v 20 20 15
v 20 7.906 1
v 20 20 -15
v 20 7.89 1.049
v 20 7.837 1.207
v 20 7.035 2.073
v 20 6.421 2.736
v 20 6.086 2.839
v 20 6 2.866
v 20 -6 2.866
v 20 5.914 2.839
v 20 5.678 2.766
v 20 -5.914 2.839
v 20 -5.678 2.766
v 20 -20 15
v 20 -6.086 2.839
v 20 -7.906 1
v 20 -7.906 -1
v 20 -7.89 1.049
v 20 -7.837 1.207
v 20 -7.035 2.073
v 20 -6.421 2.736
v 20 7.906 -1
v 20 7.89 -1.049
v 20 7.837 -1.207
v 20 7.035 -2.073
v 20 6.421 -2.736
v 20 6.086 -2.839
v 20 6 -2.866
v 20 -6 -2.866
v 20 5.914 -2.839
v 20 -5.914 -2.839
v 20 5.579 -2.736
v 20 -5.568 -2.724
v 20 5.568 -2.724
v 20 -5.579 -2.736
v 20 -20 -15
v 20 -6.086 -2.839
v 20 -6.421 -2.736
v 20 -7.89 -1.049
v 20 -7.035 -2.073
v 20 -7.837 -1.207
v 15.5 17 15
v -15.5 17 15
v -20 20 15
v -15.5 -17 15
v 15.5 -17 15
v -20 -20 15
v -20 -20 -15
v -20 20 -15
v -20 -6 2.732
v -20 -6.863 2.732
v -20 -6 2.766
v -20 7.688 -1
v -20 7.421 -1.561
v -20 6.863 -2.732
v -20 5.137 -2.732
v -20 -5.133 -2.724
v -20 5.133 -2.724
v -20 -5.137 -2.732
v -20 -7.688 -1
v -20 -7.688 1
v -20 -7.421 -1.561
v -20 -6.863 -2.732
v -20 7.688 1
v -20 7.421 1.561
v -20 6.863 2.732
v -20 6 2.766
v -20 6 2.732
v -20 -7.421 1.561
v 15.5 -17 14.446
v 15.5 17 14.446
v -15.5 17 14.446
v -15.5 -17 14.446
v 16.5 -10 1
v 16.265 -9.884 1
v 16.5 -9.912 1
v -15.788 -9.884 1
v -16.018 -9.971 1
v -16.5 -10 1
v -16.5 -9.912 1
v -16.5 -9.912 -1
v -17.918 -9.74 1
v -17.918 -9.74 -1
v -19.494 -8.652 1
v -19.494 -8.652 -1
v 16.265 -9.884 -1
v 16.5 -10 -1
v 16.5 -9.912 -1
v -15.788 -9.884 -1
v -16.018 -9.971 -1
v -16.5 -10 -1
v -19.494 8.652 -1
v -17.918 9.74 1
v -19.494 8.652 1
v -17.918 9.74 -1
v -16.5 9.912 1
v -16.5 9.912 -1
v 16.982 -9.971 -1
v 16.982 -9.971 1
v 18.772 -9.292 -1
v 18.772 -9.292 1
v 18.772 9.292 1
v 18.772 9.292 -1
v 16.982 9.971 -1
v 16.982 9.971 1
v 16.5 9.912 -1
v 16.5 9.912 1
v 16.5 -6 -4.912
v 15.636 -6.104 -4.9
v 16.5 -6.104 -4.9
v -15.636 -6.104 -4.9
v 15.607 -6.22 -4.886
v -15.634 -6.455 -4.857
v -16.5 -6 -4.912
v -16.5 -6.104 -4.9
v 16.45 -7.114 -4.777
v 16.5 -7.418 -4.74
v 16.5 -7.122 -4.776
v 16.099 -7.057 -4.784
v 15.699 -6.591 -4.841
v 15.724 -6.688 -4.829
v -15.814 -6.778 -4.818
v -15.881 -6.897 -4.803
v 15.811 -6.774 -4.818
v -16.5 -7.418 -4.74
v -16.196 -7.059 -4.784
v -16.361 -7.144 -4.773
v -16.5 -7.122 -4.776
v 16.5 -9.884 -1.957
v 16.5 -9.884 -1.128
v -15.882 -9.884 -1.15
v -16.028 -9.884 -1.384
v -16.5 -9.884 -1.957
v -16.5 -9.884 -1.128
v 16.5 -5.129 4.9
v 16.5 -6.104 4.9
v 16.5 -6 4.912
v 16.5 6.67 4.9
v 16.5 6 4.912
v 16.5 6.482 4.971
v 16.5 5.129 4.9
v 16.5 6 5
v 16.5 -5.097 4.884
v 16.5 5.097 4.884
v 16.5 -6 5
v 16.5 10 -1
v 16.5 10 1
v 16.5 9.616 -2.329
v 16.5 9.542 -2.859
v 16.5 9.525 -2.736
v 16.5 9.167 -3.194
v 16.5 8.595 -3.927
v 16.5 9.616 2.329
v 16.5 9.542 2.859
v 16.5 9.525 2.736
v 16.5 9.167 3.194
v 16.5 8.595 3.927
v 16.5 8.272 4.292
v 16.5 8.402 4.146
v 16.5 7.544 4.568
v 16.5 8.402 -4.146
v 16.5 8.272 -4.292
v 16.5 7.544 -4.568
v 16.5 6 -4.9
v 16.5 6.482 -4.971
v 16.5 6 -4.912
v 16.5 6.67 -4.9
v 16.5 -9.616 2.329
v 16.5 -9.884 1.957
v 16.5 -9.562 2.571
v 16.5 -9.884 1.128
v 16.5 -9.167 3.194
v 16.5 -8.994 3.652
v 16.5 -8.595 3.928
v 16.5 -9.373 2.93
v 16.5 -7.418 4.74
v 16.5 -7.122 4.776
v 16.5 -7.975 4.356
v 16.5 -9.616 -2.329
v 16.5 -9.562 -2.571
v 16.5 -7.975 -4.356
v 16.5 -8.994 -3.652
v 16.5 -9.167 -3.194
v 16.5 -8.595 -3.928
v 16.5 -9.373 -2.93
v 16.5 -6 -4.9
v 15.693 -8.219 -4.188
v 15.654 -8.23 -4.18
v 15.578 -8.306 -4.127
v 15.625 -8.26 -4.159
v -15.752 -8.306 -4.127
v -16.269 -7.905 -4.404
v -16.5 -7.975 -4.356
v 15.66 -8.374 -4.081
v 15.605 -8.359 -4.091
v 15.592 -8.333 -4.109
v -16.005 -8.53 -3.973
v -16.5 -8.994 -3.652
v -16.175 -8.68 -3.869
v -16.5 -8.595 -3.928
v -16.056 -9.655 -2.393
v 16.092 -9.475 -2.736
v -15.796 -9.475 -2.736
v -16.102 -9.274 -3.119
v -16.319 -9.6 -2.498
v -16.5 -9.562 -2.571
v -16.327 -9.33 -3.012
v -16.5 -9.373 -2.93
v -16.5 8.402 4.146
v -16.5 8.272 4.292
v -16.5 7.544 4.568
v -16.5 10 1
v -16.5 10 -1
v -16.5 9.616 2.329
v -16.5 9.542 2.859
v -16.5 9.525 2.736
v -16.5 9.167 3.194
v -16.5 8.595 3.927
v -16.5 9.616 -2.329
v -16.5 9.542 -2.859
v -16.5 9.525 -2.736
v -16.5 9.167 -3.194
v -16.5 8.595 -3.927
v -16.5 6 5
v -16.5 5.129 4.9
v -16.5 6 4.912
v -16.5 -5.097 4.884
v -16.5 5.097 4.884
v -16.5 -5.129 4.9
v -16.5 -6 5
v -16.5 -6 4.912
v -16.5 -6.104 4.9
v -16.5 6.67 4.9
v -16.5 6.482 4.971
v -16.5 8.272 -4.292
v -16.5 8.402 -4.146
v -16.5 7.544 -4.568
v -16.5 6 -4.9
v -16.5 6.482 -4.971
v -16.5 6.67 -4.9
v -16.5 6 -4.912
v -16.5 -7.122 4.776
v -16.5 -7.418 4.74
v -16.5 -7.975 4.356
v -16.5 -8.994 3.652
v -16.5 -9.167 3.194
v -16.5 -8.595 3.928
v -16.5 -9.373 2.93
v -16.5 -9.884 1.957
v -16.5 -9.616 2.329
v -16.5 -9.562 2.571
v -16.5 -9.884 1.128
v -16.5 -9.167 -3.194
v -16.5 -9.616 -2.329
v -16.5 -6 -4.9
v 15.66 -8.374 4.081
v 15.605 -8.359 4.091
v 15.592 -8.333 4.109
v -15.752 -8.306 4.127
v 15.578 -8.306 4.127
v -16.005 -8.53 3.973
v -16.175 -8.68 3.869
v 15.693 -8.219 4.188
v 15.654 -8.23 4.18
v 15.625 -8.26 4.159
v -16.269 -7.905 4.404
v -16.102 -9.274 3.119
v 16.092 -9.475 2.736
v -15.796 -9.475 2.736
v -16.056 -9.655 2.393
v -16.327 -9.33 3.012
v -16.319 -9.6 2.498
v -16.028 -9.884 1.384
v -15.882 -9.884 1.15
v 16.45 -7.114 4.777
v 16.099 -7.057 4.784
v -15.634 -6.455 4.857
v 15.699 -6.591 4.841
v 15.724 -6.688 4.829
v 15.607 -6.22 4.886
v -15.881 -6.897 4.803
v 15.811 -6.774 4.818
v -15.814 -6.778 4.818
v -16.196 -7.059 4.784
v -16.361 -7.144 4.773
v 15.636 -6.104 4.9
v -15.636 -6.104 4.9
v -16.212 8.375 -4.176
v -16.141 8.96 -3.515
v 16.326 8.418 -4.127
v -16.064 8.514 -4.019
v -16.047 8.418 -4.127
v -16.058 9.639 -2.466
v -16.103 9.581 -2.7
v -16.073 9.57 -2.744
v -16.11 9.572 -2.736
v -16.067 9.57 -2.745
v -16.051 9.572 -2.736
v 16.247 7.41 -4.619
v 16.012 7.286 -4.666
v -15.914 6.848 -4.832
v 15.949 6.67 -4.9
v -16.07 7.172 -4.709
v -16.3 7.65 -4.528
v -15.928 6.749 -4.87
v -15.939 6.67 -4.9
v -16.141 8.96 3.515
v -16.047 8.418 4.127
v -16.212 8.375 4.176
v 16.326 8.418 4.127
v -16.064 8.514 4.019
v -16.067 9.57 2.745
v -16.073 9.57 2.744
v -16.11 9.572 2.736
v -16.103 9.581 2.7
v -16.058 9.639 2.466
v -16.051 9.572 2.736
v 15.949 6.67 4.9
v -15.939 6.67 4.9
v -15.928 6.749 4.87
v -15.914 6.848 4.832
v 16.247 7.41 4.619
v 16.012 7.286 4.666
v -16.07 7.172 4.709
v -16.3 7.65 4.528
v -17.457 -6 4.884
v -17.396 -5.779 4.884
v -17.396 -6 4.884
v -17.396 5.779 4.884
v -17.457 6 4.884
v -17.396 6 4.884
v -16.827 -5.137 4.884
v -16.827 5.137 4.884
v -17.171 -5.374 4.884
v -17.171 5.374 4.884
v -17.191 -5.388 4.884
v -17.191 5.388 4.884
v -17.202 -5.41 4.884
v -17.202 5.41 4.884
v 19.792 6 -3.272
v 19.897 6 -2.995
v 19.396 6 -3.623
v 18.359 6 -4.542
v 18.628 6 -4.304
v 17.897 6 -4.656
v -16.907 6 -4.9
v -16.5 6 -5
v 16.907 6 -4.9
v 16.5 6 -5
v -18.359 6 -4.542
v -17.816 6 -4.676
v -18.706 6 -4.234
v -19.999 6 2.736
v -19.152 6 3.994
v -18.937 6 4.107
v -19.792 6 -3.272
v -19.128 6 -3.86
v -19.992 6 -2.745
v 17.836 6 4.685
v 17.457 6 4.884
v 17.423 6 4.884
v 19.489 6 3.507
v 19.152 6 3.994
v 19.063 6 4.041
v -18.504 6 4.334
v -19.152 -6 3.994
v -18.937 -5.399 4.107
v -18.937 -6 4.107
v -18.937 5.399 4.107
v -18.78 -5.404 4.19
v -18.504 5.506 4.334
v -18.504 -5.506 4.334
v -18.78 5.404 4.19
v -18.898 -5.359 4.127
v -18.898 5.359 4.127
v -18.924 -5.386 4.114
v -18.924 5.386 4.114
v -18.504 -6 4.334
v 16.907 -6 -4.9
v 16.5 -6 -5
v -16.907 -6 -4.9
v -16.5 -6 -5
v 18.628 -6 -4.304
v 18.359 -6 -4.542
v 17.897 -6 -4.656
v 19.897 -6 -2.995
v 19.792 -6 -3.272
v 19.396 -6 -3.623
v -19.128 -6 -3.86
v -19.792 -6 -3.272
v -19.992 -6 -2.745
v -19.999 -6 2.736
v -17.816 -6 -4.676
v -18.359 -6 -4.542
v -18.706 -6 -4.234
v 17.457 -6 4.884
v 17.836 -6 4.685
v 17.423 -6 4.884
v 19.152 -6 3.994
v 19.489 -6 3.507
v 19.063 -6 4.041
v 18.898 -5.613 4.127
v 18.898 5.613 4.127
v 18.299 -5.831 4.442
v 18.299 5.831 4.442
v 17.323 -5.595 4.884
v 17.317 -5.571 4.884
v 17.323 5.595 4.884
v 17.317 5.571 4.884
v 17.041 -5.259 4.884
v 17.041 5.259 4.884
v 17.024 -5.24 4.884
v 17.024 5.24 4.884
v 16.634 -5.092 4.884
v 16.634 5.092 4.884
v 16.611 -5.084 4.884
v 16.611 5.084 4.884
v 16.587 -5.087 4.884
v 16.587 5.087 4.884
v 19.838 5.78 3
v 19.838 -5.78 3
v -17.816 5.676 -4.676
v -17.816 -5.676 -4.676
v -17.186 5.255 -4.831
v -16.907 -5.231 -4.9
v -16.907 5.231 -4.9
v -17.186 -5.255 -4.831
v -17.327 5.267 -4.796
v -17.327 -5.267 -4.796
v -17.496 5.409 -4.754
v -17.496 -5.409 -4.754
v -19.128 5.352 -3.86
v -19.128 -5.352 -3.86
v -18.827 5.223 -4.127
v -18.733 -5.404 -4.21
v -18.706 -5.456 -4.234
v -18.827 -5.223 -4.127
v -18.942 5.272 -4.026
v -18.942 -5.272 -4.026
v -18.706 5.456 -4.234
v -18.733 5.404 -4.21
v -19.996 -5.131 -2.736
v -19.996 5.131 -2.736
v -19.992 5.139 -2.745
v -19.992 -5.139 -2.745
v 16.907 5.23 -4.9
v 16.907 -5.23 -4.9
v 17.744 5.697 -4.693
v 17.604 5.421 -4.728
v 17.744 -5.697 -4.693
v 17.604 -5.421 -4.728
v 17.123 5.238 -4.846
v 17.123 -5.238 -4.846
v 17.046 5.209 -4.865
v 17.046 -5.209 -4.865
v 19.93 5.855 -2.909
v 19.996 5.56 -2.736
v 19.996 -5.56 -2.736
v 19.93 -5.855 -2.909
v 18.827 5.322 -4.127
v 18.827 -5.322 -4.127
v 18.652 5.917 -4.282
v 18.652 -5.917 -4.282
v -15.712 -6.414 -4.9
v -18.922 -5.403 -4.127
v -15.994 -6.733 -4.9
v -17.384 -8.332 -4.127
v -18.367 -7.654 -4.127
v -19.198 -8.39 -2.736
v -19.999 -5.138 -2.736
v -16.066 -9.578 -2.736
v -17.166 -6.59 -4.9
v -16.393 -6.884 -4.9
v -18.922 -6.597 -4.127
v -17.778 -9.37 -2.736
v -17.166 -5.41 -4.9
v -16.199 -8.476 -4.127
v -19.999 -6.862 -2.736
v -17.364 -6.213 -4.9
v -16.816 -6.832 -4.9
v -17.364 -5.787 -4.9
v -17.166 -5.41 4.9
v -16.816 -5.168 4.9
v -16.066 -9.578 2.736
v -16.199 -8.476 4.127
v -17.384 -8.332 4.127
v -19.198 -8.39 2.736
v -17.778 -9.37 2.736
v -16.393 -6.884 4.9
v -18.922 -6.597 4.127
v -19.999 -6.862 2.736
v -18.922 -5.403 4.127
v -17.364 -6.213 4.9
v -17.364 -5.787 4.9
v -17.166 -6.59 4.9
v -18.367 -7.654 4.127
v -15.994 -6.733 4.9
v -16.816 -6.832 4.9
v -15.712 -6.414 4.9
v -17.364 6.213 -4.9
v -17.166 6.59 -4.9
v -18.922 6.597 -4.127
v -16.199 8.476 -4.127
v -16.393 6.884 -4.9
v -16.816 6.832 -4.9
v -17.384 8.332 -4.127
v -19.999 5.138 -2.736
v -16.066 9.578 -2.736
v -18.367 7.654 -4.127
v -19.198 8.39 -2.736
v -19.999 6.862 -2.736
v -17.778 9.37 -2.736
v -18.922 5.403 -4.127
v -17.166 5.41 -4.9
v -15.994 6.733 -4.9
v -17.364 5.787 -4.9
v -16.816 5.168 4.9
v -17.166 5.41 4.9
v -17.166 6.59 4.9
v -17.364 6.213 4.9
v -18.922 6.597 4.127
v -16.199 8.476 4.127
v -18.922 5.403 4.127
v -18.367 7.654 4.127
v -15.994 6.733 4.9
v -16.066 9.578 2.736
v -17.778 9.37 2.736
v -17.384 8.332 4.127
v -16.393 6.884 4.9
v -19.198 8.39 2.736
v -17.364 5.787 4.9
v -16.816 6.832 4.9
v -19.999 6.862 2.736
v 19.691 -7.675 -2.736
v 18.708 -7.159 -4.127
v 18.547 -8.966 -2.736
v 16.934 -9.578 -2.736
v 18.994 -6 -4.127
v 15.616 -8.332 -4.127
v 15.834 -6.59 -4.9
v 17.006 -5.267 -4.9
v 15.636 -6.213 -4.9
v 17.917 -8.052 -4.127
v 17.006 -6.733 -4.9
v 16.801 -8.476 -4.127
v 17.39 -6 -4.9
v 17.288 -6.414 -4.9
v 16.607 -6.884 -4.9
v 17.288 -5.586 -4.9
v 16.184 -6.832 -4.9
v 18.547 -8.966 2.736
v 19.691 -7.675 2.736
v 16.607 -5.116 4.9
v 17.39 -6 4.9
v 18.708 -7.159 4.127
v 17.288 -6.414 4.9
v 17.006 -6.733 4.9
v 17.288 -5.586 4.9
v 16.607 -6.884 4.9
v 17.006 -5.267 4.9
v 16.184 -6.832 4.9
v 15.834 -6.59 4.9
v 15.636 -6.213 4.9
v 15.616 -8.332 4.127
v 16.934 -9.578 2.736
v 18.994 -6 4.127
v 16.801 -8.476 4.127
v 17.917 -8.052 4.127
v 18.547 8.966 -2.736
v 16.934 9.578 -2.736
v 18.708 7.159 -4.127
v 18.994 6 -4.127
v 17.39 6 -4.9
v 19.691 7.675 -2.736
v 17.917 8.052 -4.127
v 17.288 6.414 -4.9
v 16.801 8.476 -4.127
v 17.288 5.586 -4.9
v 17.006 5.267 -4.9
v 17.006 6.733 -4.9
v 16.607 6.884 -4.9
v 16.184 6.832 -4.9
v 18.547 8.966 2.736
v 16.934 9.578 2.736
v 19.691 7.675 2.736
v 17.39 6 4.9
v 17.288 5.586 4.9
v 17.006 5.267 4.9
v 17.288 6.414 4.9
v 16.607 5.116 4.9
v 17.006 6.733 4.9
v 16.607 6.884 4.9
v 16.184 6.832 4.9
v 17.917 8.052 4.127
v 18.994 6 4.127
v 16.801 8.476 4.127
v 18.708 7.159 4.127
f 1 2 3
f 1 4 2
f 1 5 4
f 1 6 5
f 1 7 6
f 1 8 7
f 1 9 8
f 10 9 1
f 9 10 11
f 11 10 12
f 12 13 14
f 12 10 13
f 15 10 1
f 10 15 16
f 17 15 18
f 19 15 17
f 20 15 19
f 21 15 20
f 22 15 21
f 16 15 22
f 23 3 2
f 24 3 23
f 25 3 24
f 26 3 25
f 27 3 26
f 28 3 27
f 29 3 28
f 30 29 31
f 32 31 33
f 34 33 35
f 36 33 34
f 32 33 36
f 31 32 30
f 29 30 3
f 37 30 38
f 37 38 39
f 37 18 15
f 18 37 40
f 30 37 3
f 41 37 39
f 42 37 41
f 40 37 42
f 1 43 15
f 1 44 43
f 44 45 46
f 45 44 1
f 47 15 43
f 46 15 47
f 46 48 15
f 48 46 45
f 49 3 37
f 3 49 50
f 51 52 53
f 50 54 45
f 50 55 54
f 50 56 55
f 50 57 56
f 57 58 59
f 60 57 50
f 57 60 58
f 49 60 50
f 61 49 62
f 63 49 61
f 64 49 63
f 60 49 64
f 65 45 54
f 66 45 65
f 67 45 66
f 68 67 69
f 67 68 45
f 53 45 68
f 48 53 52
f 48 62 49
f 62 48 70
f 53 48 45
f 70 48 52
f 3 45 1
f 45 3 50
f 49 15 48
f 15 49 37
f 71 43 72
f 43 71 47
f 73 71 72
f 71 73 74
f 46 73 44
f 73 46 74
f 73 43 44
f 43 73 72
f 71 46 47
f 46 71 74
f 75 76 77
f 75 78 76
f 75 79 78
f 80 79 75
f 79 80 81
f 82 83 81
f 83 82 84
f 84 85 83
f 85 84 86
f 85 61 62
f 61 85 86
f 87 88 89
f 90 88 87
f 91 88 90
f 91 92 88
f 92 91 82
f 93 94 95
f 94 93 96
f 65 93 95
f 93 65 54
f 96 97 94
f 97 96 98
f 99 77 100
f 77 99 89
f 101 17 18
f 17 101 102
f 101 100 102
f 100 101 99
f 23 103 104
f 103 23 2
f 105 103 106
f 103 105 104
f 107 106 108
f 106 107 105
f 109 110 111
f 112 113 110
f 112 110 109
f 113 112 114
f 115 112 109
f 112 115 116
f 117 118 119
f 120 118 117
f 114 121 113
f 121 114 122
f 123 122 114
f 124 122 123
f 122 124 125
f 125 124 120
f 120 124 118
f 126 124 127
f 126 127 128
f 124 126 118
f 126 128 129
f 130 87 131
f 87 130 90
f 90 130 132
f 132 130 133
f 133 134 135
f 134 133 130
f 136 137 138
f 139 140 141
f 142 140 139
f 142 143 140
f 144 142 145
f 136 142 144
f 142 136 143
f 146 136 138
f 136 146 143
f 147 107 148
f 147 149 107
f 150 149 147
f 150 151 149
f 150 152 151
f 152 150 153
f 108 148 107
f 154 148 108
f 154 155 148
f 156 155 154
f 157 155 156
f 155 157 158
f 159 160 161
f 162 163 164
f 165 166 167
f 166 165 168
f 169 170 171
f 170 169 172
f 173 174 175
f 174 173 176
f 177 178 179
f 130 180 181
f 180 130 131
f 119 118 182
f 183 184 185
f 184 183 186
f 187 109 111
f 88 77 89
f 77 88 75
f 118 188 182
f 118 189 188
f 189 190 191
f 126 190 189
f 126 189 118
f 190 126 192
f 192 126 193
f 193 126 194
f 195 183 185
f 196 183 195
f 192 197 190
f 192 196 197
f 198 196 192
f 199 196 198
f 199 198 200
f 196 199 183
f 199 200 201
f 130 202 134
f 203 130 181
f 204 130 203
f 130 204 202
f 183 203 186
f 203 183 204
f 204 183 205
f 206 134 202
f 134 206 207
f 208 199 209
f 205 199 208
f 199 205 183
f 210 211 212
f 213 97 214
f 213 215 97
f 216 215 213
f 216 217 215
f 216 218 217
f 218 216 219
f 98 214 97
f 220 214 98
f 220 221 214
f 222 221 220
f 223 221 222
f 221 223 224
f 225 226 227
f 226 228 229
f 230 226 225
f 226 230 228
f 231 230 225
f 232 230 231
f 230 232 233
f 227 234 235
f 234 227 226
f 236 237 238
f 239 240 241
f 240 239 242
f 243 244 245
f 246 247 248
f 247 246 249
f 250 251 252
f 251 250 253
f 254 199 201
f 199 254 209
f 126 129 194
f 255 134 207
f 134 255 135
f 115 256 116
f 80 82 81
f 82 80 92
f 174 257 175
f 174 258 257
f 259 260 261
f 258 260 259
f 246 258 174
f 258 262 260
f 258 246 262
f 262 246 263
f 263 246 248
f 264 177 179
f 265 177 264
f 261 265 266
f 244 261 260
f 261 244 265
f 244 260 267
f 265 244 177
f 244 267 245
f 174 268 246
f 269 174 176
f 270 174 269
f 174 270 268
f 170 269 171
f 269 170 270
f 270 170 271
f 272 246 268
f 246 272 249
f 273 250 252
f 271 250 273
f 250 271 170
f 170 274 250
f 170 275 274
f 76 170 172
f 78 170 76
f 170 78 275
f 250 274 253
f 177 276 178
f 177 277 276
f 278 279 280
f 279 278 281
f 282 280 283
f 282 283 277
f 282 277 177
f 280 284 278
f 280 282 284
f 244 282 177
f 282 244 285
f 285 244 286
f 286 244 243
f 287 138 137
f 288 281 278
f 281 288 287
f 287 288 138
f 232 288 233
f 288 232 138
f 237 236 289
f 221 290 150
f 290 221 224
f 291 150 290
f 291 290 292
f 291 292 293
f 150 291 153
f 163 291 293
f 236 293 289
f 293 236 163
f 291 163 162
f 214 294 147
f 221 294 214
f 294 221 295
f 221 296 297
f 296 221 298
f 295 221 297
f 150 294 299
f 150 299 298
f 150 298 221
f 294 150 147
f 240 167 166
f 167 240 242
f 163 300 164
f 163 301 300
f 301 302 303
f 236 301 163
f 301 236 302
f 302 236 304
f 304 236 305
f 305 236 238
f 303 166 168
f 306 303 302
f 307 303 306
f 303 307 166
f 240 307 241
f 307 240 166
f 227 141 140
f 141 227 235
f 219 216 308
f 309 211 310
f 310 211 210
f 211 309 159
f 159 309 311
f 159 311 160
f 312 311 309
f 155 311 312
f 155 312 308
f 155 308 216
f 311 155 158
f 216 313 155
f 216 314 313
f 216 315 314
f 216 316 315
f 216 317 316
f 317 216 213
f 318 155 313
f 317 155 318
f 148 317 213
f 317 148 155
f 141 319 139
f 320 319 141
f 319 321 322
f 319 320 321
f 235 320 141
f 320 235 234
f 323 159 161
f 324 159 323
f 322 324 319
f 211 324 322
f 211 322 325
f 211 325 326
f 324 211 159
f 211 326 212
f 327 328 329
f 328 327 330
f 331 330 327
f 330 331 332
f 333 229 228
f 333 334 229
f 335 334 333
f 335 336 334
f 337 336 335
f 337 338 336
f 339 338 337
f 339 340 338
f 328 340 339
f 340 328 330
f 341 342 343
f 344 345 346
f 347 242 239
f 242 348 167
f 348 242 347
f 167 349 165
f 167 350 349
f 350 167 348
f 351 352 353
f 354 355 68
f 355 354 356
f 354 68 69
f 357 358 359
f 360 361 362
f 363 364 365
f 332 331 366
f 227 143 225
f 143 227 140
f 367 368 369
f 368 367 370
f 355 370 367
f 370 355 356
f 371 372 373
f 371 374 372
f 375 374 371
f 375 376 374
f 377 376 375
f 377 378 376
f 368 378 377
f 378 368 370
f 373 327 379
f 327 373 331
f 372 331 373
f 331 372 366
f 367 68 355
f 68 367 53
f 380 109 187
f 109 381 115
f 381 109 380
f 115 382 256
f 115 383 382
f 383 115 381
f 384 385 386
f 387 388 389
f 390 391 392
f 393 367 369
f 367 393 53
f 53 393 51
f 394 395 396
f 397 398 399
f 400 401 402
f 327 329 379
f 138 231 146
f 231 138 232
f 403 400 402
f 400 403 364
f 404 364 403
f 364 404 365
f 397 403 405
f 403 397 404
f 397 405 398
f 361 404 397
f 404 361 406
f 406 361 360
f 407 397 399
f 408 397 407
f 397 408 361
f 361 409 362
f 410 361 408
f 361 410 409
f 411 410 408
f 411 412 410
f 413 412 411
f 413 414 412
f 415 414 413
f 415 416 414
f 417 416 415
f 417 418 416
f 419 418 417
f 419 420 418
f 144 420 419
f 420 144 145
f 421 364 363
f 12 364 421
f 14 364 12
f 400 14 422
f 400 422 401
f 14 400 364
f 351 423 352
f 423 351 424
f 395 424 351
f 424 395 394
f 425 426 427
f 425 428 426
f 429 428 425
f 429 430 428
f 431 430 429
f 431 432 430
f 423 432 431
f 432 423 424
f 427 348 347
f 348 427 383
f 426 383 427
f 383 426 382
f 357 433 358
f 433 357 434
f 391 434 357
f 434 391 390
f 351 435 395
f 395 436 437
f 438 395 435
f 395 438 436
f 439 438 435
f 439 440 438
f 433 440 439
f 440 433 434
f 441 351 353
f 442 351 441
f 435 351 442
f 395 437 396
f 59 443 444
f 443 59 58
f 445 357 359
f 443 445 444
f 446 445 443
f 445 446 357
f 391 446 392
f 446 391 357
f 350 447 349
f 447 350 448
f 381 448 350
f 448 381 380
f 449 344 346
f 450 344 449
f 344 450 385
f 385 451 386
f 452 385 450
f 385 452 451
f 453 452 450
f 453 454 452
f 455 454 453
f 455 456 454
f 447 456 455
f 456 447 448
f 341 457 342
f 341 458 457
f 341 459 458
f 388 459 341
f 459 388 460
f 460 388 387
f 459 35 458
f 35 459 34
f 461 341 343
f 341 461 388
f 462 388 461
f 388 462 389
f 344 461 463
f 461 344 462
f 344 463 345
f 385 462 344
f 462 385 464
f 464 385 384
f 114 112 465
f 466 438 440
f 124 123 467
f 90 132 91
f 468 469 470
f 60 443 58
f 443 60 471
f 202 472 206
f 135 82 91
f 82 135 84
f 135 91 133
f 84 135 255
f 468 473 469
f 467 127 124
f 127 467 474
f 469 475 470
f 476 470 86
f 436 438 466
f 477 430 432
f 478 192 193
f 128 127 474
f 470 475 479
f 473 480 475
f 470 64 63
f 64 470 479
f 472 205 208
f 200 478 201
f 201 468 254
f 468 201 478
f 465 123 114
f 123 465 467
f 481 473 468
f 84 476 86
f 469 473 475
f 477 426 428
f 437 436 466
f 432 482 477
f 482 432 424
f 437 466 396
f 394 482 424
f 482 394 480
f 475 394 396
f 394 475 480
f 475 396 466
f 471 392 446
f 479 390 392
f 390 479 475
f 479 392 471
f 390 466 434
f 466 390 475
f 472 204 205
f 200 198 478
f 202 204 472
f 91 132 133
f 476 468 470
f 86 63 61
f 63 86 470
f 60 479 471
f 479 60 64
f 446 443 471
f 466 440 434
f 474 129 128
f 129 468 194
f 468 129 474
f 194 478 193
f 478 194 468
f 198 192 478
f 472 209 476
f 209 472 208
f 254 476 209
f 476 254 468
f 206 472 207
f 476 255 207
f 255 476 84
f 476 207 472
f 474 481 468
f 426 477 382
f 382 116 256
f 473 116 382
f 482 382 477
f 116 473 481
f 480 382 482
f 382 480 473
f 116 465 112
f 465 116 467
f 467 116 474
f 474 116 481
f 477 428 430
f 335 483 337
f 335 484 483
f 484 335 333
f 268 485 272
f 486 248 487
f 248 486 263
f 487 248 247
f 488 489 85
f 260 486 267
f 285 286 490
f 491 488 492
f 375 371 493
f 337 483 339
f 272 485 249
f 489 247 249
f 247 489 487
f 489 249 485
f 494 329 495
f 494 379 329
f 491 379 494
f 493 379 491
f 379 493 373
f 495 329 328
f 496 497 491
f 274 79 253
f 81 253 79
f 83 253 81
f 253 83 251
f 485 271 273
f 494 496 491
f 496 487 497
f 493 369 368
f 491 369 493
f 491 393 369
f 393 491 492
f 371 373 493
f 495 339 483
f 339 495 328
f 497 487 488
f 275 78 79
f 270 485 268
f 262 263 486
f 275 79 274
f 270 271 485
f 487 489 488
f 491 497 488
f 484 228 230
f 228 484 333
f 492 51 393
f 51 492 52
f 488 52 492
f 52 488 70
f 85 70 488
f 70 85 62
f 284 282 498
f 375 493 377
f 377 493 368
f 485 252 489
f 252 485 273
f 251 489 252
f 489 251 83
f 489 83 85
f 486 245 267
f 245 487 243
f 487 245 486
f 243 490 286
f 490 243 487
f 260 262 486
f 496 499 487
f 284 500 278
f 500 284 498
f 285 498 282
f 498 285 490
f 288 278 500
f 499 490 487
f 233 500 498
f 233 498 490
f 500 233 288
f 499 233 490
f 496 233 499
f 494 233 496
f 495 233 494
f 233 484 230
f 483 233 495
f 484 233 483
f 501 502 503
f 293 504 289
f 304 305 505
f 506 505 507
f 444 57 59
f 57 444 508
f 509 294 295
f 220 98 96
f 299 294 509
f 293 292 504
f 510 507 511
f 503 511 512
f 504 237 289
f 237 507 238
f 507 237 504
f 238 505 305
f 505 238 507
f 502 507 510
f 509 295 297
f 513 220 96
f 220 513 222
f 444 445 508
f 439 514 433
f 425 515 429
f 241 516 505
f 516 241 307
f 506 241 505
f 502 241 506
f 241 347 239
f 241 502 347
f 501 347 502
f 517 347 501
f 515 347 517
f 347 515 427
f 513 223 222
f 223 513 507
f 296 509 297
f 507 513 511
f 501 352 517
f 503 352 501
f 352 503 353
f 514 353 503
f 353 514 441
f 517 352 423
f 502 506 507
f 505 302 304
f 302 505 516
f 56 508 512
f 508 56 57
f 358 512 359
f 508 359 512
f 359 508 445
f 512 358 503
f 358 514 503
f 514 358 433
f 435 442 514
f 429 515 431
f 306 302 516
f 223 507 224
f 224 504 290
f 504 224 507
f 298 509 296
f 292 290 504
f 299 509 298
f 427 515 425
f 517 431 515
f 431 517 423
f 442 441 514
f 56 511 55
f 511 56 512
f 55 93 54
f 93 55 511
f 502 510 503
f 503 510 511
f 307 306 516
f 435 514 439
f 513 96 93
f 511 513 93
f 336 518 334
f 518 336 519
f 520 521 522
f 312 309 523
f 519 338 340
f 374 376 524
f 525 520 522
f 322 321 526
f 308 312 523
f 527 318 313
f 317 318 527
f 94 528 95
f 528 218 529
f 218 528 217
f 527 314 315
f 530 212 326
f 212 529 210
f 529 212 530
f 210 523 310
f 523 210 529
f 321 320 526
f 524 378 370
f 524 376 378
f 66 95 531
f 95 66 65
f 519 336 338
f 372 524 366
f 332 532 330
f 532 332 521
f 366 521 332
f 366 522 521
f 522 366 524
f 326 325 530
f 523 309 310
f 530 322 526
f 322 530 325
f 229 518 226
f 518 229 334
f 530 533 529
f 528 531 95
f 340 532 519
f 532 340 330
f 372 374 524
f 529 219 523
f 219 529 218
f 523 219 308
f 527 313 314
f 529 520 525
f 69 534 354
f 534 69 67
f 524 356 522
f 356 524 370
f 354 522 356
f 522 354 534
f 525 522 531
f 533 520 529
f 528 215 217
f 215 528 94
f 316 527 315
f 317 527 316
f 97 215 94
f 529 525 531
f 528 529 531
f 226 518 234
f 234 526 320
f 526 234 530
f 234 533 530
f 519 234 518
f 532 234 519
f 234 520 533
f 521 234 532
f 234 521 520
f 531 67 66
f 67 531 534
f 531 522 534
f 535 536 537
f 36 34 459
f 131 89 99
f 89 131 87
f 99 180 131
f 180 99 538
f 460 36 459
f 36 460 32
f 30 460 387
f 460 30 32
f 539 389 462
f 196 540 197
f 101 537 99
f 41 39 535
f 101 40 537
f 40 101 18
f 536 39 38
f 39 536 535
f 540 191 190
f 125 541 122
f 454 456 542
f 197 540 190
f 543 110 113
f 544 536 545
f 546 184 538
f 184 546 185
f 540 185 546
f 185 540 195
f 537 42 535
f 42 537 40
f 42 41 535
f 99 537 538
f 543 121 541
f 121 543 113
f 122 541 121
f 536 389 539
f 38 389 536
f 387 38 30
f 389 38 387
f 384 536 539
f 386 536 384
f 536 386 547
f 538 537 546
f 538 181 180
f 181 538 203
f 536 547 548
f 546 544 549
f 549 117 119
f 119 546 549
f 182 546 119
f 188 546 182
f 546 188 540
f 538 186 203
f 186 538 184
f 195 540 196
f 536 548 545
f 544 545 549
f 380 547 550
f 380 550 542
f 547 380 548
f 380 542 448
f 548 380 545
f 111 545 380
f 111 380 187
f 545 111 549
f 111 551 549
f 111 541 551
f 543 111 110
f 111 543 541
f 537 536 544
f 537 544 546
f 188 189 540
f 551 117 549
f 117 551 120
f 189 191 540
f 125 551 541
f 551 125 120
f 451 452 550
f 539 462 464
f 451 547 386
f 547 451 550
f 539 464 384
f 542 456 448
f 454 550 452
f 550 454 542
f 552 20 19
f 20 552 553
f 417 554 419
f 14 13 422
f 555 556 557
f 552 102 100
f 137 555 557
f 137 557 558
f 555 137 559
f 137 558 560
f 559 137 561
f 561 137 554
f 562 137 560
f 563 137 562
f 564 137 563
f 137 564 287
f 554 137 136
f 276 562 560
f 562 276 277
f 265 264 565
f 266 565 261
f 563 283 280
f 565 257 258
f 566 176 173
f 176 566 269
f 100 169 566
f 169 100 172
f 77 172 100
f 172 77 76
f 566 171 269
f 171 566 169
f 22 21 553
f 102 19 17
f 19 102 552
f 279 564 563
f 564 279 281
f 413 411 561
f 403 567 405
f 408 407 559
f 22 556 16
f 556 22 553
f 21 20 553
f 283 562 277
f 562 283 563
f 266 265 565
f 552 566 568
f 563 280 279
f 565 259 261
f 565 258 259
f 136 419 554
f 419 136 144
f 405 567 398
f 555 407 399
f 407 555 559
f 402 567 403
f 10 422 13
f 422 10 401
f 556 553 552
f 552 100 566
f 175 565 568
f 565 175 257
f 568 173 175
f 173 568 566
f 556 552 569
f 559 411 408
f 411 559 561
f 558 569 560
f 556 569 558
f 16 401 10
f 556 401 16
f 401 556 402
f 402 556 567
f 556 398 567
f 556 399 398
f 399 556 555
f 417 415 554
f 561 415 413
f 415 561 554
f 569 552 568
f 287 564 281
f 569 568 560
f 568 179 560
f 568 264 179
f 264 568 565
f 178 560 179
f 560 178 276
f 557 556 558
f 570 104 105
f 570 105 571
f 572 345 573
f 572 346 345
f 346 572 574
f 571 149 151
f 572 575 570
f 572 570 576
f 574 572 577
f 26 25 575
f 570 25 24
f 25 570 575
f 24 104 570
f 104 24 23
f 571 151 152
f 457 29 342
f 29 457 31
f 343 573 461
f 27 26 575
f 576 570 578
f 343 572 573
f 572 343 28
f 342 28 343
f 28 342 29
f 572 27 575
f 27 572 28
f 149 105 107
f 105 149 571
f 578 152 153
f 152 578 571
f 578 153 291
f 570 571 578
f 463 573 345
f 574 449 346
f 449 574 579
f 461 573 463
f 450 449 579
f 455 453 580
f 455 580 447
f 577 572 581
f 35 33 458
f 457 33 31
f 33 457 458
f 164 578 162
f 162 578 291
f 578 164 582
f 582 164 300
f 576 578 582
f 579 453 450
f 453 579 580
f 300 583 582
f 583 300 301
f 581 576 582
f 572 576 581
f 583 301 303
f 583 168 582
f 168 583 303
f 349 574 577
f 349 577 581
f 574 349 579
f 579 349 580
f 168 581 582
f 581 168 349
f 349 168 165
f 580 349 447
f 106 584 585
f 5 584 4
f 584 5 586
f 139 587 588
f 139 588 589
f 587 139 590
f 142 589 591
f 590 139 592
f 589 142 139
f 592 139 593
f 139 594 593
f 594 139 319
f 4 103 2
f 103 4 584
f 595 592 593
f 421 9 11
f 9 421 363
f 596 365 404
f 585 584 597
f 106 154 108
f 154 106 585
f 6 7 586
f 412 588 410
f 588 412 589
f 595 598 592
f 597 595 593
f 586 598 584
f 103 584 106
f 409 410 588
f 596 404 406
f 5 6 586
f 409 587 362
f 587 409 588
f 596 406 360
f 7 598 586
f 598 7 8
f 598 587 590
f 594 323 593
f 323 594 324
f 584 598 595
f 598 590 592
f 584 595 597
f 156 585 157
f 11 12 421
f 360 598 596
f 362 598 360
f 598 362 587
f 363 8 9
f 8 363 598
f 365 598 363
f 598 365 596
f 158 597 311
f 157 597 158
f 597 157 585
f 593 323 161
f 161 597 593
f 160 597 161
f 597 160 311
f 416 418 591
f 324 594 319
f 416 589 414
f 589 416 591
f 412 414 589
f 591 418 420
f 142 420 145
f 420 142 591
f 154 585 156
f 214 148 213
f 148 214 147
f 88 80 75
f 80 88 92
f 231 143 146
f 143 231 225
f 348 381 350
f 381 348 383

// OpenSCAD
//
 use <MCAD/boxes.scad>
 
 

 module Substrate_holder(x,y,z)
 {
     color("yellow")
     difference(){
     difference(){
   cube([x,y,z],center=true);
         {translate([0,0,15+0.001])
    cube([31,31,1.11],center=true); }
         
     }
     
      rotate([0,0,0]) 


    { roundedBox(size=[x+1,y-20,z-20],radius=4);

    }
 
 }
     }
 
 Substrate_holder(40,40,30);
 
